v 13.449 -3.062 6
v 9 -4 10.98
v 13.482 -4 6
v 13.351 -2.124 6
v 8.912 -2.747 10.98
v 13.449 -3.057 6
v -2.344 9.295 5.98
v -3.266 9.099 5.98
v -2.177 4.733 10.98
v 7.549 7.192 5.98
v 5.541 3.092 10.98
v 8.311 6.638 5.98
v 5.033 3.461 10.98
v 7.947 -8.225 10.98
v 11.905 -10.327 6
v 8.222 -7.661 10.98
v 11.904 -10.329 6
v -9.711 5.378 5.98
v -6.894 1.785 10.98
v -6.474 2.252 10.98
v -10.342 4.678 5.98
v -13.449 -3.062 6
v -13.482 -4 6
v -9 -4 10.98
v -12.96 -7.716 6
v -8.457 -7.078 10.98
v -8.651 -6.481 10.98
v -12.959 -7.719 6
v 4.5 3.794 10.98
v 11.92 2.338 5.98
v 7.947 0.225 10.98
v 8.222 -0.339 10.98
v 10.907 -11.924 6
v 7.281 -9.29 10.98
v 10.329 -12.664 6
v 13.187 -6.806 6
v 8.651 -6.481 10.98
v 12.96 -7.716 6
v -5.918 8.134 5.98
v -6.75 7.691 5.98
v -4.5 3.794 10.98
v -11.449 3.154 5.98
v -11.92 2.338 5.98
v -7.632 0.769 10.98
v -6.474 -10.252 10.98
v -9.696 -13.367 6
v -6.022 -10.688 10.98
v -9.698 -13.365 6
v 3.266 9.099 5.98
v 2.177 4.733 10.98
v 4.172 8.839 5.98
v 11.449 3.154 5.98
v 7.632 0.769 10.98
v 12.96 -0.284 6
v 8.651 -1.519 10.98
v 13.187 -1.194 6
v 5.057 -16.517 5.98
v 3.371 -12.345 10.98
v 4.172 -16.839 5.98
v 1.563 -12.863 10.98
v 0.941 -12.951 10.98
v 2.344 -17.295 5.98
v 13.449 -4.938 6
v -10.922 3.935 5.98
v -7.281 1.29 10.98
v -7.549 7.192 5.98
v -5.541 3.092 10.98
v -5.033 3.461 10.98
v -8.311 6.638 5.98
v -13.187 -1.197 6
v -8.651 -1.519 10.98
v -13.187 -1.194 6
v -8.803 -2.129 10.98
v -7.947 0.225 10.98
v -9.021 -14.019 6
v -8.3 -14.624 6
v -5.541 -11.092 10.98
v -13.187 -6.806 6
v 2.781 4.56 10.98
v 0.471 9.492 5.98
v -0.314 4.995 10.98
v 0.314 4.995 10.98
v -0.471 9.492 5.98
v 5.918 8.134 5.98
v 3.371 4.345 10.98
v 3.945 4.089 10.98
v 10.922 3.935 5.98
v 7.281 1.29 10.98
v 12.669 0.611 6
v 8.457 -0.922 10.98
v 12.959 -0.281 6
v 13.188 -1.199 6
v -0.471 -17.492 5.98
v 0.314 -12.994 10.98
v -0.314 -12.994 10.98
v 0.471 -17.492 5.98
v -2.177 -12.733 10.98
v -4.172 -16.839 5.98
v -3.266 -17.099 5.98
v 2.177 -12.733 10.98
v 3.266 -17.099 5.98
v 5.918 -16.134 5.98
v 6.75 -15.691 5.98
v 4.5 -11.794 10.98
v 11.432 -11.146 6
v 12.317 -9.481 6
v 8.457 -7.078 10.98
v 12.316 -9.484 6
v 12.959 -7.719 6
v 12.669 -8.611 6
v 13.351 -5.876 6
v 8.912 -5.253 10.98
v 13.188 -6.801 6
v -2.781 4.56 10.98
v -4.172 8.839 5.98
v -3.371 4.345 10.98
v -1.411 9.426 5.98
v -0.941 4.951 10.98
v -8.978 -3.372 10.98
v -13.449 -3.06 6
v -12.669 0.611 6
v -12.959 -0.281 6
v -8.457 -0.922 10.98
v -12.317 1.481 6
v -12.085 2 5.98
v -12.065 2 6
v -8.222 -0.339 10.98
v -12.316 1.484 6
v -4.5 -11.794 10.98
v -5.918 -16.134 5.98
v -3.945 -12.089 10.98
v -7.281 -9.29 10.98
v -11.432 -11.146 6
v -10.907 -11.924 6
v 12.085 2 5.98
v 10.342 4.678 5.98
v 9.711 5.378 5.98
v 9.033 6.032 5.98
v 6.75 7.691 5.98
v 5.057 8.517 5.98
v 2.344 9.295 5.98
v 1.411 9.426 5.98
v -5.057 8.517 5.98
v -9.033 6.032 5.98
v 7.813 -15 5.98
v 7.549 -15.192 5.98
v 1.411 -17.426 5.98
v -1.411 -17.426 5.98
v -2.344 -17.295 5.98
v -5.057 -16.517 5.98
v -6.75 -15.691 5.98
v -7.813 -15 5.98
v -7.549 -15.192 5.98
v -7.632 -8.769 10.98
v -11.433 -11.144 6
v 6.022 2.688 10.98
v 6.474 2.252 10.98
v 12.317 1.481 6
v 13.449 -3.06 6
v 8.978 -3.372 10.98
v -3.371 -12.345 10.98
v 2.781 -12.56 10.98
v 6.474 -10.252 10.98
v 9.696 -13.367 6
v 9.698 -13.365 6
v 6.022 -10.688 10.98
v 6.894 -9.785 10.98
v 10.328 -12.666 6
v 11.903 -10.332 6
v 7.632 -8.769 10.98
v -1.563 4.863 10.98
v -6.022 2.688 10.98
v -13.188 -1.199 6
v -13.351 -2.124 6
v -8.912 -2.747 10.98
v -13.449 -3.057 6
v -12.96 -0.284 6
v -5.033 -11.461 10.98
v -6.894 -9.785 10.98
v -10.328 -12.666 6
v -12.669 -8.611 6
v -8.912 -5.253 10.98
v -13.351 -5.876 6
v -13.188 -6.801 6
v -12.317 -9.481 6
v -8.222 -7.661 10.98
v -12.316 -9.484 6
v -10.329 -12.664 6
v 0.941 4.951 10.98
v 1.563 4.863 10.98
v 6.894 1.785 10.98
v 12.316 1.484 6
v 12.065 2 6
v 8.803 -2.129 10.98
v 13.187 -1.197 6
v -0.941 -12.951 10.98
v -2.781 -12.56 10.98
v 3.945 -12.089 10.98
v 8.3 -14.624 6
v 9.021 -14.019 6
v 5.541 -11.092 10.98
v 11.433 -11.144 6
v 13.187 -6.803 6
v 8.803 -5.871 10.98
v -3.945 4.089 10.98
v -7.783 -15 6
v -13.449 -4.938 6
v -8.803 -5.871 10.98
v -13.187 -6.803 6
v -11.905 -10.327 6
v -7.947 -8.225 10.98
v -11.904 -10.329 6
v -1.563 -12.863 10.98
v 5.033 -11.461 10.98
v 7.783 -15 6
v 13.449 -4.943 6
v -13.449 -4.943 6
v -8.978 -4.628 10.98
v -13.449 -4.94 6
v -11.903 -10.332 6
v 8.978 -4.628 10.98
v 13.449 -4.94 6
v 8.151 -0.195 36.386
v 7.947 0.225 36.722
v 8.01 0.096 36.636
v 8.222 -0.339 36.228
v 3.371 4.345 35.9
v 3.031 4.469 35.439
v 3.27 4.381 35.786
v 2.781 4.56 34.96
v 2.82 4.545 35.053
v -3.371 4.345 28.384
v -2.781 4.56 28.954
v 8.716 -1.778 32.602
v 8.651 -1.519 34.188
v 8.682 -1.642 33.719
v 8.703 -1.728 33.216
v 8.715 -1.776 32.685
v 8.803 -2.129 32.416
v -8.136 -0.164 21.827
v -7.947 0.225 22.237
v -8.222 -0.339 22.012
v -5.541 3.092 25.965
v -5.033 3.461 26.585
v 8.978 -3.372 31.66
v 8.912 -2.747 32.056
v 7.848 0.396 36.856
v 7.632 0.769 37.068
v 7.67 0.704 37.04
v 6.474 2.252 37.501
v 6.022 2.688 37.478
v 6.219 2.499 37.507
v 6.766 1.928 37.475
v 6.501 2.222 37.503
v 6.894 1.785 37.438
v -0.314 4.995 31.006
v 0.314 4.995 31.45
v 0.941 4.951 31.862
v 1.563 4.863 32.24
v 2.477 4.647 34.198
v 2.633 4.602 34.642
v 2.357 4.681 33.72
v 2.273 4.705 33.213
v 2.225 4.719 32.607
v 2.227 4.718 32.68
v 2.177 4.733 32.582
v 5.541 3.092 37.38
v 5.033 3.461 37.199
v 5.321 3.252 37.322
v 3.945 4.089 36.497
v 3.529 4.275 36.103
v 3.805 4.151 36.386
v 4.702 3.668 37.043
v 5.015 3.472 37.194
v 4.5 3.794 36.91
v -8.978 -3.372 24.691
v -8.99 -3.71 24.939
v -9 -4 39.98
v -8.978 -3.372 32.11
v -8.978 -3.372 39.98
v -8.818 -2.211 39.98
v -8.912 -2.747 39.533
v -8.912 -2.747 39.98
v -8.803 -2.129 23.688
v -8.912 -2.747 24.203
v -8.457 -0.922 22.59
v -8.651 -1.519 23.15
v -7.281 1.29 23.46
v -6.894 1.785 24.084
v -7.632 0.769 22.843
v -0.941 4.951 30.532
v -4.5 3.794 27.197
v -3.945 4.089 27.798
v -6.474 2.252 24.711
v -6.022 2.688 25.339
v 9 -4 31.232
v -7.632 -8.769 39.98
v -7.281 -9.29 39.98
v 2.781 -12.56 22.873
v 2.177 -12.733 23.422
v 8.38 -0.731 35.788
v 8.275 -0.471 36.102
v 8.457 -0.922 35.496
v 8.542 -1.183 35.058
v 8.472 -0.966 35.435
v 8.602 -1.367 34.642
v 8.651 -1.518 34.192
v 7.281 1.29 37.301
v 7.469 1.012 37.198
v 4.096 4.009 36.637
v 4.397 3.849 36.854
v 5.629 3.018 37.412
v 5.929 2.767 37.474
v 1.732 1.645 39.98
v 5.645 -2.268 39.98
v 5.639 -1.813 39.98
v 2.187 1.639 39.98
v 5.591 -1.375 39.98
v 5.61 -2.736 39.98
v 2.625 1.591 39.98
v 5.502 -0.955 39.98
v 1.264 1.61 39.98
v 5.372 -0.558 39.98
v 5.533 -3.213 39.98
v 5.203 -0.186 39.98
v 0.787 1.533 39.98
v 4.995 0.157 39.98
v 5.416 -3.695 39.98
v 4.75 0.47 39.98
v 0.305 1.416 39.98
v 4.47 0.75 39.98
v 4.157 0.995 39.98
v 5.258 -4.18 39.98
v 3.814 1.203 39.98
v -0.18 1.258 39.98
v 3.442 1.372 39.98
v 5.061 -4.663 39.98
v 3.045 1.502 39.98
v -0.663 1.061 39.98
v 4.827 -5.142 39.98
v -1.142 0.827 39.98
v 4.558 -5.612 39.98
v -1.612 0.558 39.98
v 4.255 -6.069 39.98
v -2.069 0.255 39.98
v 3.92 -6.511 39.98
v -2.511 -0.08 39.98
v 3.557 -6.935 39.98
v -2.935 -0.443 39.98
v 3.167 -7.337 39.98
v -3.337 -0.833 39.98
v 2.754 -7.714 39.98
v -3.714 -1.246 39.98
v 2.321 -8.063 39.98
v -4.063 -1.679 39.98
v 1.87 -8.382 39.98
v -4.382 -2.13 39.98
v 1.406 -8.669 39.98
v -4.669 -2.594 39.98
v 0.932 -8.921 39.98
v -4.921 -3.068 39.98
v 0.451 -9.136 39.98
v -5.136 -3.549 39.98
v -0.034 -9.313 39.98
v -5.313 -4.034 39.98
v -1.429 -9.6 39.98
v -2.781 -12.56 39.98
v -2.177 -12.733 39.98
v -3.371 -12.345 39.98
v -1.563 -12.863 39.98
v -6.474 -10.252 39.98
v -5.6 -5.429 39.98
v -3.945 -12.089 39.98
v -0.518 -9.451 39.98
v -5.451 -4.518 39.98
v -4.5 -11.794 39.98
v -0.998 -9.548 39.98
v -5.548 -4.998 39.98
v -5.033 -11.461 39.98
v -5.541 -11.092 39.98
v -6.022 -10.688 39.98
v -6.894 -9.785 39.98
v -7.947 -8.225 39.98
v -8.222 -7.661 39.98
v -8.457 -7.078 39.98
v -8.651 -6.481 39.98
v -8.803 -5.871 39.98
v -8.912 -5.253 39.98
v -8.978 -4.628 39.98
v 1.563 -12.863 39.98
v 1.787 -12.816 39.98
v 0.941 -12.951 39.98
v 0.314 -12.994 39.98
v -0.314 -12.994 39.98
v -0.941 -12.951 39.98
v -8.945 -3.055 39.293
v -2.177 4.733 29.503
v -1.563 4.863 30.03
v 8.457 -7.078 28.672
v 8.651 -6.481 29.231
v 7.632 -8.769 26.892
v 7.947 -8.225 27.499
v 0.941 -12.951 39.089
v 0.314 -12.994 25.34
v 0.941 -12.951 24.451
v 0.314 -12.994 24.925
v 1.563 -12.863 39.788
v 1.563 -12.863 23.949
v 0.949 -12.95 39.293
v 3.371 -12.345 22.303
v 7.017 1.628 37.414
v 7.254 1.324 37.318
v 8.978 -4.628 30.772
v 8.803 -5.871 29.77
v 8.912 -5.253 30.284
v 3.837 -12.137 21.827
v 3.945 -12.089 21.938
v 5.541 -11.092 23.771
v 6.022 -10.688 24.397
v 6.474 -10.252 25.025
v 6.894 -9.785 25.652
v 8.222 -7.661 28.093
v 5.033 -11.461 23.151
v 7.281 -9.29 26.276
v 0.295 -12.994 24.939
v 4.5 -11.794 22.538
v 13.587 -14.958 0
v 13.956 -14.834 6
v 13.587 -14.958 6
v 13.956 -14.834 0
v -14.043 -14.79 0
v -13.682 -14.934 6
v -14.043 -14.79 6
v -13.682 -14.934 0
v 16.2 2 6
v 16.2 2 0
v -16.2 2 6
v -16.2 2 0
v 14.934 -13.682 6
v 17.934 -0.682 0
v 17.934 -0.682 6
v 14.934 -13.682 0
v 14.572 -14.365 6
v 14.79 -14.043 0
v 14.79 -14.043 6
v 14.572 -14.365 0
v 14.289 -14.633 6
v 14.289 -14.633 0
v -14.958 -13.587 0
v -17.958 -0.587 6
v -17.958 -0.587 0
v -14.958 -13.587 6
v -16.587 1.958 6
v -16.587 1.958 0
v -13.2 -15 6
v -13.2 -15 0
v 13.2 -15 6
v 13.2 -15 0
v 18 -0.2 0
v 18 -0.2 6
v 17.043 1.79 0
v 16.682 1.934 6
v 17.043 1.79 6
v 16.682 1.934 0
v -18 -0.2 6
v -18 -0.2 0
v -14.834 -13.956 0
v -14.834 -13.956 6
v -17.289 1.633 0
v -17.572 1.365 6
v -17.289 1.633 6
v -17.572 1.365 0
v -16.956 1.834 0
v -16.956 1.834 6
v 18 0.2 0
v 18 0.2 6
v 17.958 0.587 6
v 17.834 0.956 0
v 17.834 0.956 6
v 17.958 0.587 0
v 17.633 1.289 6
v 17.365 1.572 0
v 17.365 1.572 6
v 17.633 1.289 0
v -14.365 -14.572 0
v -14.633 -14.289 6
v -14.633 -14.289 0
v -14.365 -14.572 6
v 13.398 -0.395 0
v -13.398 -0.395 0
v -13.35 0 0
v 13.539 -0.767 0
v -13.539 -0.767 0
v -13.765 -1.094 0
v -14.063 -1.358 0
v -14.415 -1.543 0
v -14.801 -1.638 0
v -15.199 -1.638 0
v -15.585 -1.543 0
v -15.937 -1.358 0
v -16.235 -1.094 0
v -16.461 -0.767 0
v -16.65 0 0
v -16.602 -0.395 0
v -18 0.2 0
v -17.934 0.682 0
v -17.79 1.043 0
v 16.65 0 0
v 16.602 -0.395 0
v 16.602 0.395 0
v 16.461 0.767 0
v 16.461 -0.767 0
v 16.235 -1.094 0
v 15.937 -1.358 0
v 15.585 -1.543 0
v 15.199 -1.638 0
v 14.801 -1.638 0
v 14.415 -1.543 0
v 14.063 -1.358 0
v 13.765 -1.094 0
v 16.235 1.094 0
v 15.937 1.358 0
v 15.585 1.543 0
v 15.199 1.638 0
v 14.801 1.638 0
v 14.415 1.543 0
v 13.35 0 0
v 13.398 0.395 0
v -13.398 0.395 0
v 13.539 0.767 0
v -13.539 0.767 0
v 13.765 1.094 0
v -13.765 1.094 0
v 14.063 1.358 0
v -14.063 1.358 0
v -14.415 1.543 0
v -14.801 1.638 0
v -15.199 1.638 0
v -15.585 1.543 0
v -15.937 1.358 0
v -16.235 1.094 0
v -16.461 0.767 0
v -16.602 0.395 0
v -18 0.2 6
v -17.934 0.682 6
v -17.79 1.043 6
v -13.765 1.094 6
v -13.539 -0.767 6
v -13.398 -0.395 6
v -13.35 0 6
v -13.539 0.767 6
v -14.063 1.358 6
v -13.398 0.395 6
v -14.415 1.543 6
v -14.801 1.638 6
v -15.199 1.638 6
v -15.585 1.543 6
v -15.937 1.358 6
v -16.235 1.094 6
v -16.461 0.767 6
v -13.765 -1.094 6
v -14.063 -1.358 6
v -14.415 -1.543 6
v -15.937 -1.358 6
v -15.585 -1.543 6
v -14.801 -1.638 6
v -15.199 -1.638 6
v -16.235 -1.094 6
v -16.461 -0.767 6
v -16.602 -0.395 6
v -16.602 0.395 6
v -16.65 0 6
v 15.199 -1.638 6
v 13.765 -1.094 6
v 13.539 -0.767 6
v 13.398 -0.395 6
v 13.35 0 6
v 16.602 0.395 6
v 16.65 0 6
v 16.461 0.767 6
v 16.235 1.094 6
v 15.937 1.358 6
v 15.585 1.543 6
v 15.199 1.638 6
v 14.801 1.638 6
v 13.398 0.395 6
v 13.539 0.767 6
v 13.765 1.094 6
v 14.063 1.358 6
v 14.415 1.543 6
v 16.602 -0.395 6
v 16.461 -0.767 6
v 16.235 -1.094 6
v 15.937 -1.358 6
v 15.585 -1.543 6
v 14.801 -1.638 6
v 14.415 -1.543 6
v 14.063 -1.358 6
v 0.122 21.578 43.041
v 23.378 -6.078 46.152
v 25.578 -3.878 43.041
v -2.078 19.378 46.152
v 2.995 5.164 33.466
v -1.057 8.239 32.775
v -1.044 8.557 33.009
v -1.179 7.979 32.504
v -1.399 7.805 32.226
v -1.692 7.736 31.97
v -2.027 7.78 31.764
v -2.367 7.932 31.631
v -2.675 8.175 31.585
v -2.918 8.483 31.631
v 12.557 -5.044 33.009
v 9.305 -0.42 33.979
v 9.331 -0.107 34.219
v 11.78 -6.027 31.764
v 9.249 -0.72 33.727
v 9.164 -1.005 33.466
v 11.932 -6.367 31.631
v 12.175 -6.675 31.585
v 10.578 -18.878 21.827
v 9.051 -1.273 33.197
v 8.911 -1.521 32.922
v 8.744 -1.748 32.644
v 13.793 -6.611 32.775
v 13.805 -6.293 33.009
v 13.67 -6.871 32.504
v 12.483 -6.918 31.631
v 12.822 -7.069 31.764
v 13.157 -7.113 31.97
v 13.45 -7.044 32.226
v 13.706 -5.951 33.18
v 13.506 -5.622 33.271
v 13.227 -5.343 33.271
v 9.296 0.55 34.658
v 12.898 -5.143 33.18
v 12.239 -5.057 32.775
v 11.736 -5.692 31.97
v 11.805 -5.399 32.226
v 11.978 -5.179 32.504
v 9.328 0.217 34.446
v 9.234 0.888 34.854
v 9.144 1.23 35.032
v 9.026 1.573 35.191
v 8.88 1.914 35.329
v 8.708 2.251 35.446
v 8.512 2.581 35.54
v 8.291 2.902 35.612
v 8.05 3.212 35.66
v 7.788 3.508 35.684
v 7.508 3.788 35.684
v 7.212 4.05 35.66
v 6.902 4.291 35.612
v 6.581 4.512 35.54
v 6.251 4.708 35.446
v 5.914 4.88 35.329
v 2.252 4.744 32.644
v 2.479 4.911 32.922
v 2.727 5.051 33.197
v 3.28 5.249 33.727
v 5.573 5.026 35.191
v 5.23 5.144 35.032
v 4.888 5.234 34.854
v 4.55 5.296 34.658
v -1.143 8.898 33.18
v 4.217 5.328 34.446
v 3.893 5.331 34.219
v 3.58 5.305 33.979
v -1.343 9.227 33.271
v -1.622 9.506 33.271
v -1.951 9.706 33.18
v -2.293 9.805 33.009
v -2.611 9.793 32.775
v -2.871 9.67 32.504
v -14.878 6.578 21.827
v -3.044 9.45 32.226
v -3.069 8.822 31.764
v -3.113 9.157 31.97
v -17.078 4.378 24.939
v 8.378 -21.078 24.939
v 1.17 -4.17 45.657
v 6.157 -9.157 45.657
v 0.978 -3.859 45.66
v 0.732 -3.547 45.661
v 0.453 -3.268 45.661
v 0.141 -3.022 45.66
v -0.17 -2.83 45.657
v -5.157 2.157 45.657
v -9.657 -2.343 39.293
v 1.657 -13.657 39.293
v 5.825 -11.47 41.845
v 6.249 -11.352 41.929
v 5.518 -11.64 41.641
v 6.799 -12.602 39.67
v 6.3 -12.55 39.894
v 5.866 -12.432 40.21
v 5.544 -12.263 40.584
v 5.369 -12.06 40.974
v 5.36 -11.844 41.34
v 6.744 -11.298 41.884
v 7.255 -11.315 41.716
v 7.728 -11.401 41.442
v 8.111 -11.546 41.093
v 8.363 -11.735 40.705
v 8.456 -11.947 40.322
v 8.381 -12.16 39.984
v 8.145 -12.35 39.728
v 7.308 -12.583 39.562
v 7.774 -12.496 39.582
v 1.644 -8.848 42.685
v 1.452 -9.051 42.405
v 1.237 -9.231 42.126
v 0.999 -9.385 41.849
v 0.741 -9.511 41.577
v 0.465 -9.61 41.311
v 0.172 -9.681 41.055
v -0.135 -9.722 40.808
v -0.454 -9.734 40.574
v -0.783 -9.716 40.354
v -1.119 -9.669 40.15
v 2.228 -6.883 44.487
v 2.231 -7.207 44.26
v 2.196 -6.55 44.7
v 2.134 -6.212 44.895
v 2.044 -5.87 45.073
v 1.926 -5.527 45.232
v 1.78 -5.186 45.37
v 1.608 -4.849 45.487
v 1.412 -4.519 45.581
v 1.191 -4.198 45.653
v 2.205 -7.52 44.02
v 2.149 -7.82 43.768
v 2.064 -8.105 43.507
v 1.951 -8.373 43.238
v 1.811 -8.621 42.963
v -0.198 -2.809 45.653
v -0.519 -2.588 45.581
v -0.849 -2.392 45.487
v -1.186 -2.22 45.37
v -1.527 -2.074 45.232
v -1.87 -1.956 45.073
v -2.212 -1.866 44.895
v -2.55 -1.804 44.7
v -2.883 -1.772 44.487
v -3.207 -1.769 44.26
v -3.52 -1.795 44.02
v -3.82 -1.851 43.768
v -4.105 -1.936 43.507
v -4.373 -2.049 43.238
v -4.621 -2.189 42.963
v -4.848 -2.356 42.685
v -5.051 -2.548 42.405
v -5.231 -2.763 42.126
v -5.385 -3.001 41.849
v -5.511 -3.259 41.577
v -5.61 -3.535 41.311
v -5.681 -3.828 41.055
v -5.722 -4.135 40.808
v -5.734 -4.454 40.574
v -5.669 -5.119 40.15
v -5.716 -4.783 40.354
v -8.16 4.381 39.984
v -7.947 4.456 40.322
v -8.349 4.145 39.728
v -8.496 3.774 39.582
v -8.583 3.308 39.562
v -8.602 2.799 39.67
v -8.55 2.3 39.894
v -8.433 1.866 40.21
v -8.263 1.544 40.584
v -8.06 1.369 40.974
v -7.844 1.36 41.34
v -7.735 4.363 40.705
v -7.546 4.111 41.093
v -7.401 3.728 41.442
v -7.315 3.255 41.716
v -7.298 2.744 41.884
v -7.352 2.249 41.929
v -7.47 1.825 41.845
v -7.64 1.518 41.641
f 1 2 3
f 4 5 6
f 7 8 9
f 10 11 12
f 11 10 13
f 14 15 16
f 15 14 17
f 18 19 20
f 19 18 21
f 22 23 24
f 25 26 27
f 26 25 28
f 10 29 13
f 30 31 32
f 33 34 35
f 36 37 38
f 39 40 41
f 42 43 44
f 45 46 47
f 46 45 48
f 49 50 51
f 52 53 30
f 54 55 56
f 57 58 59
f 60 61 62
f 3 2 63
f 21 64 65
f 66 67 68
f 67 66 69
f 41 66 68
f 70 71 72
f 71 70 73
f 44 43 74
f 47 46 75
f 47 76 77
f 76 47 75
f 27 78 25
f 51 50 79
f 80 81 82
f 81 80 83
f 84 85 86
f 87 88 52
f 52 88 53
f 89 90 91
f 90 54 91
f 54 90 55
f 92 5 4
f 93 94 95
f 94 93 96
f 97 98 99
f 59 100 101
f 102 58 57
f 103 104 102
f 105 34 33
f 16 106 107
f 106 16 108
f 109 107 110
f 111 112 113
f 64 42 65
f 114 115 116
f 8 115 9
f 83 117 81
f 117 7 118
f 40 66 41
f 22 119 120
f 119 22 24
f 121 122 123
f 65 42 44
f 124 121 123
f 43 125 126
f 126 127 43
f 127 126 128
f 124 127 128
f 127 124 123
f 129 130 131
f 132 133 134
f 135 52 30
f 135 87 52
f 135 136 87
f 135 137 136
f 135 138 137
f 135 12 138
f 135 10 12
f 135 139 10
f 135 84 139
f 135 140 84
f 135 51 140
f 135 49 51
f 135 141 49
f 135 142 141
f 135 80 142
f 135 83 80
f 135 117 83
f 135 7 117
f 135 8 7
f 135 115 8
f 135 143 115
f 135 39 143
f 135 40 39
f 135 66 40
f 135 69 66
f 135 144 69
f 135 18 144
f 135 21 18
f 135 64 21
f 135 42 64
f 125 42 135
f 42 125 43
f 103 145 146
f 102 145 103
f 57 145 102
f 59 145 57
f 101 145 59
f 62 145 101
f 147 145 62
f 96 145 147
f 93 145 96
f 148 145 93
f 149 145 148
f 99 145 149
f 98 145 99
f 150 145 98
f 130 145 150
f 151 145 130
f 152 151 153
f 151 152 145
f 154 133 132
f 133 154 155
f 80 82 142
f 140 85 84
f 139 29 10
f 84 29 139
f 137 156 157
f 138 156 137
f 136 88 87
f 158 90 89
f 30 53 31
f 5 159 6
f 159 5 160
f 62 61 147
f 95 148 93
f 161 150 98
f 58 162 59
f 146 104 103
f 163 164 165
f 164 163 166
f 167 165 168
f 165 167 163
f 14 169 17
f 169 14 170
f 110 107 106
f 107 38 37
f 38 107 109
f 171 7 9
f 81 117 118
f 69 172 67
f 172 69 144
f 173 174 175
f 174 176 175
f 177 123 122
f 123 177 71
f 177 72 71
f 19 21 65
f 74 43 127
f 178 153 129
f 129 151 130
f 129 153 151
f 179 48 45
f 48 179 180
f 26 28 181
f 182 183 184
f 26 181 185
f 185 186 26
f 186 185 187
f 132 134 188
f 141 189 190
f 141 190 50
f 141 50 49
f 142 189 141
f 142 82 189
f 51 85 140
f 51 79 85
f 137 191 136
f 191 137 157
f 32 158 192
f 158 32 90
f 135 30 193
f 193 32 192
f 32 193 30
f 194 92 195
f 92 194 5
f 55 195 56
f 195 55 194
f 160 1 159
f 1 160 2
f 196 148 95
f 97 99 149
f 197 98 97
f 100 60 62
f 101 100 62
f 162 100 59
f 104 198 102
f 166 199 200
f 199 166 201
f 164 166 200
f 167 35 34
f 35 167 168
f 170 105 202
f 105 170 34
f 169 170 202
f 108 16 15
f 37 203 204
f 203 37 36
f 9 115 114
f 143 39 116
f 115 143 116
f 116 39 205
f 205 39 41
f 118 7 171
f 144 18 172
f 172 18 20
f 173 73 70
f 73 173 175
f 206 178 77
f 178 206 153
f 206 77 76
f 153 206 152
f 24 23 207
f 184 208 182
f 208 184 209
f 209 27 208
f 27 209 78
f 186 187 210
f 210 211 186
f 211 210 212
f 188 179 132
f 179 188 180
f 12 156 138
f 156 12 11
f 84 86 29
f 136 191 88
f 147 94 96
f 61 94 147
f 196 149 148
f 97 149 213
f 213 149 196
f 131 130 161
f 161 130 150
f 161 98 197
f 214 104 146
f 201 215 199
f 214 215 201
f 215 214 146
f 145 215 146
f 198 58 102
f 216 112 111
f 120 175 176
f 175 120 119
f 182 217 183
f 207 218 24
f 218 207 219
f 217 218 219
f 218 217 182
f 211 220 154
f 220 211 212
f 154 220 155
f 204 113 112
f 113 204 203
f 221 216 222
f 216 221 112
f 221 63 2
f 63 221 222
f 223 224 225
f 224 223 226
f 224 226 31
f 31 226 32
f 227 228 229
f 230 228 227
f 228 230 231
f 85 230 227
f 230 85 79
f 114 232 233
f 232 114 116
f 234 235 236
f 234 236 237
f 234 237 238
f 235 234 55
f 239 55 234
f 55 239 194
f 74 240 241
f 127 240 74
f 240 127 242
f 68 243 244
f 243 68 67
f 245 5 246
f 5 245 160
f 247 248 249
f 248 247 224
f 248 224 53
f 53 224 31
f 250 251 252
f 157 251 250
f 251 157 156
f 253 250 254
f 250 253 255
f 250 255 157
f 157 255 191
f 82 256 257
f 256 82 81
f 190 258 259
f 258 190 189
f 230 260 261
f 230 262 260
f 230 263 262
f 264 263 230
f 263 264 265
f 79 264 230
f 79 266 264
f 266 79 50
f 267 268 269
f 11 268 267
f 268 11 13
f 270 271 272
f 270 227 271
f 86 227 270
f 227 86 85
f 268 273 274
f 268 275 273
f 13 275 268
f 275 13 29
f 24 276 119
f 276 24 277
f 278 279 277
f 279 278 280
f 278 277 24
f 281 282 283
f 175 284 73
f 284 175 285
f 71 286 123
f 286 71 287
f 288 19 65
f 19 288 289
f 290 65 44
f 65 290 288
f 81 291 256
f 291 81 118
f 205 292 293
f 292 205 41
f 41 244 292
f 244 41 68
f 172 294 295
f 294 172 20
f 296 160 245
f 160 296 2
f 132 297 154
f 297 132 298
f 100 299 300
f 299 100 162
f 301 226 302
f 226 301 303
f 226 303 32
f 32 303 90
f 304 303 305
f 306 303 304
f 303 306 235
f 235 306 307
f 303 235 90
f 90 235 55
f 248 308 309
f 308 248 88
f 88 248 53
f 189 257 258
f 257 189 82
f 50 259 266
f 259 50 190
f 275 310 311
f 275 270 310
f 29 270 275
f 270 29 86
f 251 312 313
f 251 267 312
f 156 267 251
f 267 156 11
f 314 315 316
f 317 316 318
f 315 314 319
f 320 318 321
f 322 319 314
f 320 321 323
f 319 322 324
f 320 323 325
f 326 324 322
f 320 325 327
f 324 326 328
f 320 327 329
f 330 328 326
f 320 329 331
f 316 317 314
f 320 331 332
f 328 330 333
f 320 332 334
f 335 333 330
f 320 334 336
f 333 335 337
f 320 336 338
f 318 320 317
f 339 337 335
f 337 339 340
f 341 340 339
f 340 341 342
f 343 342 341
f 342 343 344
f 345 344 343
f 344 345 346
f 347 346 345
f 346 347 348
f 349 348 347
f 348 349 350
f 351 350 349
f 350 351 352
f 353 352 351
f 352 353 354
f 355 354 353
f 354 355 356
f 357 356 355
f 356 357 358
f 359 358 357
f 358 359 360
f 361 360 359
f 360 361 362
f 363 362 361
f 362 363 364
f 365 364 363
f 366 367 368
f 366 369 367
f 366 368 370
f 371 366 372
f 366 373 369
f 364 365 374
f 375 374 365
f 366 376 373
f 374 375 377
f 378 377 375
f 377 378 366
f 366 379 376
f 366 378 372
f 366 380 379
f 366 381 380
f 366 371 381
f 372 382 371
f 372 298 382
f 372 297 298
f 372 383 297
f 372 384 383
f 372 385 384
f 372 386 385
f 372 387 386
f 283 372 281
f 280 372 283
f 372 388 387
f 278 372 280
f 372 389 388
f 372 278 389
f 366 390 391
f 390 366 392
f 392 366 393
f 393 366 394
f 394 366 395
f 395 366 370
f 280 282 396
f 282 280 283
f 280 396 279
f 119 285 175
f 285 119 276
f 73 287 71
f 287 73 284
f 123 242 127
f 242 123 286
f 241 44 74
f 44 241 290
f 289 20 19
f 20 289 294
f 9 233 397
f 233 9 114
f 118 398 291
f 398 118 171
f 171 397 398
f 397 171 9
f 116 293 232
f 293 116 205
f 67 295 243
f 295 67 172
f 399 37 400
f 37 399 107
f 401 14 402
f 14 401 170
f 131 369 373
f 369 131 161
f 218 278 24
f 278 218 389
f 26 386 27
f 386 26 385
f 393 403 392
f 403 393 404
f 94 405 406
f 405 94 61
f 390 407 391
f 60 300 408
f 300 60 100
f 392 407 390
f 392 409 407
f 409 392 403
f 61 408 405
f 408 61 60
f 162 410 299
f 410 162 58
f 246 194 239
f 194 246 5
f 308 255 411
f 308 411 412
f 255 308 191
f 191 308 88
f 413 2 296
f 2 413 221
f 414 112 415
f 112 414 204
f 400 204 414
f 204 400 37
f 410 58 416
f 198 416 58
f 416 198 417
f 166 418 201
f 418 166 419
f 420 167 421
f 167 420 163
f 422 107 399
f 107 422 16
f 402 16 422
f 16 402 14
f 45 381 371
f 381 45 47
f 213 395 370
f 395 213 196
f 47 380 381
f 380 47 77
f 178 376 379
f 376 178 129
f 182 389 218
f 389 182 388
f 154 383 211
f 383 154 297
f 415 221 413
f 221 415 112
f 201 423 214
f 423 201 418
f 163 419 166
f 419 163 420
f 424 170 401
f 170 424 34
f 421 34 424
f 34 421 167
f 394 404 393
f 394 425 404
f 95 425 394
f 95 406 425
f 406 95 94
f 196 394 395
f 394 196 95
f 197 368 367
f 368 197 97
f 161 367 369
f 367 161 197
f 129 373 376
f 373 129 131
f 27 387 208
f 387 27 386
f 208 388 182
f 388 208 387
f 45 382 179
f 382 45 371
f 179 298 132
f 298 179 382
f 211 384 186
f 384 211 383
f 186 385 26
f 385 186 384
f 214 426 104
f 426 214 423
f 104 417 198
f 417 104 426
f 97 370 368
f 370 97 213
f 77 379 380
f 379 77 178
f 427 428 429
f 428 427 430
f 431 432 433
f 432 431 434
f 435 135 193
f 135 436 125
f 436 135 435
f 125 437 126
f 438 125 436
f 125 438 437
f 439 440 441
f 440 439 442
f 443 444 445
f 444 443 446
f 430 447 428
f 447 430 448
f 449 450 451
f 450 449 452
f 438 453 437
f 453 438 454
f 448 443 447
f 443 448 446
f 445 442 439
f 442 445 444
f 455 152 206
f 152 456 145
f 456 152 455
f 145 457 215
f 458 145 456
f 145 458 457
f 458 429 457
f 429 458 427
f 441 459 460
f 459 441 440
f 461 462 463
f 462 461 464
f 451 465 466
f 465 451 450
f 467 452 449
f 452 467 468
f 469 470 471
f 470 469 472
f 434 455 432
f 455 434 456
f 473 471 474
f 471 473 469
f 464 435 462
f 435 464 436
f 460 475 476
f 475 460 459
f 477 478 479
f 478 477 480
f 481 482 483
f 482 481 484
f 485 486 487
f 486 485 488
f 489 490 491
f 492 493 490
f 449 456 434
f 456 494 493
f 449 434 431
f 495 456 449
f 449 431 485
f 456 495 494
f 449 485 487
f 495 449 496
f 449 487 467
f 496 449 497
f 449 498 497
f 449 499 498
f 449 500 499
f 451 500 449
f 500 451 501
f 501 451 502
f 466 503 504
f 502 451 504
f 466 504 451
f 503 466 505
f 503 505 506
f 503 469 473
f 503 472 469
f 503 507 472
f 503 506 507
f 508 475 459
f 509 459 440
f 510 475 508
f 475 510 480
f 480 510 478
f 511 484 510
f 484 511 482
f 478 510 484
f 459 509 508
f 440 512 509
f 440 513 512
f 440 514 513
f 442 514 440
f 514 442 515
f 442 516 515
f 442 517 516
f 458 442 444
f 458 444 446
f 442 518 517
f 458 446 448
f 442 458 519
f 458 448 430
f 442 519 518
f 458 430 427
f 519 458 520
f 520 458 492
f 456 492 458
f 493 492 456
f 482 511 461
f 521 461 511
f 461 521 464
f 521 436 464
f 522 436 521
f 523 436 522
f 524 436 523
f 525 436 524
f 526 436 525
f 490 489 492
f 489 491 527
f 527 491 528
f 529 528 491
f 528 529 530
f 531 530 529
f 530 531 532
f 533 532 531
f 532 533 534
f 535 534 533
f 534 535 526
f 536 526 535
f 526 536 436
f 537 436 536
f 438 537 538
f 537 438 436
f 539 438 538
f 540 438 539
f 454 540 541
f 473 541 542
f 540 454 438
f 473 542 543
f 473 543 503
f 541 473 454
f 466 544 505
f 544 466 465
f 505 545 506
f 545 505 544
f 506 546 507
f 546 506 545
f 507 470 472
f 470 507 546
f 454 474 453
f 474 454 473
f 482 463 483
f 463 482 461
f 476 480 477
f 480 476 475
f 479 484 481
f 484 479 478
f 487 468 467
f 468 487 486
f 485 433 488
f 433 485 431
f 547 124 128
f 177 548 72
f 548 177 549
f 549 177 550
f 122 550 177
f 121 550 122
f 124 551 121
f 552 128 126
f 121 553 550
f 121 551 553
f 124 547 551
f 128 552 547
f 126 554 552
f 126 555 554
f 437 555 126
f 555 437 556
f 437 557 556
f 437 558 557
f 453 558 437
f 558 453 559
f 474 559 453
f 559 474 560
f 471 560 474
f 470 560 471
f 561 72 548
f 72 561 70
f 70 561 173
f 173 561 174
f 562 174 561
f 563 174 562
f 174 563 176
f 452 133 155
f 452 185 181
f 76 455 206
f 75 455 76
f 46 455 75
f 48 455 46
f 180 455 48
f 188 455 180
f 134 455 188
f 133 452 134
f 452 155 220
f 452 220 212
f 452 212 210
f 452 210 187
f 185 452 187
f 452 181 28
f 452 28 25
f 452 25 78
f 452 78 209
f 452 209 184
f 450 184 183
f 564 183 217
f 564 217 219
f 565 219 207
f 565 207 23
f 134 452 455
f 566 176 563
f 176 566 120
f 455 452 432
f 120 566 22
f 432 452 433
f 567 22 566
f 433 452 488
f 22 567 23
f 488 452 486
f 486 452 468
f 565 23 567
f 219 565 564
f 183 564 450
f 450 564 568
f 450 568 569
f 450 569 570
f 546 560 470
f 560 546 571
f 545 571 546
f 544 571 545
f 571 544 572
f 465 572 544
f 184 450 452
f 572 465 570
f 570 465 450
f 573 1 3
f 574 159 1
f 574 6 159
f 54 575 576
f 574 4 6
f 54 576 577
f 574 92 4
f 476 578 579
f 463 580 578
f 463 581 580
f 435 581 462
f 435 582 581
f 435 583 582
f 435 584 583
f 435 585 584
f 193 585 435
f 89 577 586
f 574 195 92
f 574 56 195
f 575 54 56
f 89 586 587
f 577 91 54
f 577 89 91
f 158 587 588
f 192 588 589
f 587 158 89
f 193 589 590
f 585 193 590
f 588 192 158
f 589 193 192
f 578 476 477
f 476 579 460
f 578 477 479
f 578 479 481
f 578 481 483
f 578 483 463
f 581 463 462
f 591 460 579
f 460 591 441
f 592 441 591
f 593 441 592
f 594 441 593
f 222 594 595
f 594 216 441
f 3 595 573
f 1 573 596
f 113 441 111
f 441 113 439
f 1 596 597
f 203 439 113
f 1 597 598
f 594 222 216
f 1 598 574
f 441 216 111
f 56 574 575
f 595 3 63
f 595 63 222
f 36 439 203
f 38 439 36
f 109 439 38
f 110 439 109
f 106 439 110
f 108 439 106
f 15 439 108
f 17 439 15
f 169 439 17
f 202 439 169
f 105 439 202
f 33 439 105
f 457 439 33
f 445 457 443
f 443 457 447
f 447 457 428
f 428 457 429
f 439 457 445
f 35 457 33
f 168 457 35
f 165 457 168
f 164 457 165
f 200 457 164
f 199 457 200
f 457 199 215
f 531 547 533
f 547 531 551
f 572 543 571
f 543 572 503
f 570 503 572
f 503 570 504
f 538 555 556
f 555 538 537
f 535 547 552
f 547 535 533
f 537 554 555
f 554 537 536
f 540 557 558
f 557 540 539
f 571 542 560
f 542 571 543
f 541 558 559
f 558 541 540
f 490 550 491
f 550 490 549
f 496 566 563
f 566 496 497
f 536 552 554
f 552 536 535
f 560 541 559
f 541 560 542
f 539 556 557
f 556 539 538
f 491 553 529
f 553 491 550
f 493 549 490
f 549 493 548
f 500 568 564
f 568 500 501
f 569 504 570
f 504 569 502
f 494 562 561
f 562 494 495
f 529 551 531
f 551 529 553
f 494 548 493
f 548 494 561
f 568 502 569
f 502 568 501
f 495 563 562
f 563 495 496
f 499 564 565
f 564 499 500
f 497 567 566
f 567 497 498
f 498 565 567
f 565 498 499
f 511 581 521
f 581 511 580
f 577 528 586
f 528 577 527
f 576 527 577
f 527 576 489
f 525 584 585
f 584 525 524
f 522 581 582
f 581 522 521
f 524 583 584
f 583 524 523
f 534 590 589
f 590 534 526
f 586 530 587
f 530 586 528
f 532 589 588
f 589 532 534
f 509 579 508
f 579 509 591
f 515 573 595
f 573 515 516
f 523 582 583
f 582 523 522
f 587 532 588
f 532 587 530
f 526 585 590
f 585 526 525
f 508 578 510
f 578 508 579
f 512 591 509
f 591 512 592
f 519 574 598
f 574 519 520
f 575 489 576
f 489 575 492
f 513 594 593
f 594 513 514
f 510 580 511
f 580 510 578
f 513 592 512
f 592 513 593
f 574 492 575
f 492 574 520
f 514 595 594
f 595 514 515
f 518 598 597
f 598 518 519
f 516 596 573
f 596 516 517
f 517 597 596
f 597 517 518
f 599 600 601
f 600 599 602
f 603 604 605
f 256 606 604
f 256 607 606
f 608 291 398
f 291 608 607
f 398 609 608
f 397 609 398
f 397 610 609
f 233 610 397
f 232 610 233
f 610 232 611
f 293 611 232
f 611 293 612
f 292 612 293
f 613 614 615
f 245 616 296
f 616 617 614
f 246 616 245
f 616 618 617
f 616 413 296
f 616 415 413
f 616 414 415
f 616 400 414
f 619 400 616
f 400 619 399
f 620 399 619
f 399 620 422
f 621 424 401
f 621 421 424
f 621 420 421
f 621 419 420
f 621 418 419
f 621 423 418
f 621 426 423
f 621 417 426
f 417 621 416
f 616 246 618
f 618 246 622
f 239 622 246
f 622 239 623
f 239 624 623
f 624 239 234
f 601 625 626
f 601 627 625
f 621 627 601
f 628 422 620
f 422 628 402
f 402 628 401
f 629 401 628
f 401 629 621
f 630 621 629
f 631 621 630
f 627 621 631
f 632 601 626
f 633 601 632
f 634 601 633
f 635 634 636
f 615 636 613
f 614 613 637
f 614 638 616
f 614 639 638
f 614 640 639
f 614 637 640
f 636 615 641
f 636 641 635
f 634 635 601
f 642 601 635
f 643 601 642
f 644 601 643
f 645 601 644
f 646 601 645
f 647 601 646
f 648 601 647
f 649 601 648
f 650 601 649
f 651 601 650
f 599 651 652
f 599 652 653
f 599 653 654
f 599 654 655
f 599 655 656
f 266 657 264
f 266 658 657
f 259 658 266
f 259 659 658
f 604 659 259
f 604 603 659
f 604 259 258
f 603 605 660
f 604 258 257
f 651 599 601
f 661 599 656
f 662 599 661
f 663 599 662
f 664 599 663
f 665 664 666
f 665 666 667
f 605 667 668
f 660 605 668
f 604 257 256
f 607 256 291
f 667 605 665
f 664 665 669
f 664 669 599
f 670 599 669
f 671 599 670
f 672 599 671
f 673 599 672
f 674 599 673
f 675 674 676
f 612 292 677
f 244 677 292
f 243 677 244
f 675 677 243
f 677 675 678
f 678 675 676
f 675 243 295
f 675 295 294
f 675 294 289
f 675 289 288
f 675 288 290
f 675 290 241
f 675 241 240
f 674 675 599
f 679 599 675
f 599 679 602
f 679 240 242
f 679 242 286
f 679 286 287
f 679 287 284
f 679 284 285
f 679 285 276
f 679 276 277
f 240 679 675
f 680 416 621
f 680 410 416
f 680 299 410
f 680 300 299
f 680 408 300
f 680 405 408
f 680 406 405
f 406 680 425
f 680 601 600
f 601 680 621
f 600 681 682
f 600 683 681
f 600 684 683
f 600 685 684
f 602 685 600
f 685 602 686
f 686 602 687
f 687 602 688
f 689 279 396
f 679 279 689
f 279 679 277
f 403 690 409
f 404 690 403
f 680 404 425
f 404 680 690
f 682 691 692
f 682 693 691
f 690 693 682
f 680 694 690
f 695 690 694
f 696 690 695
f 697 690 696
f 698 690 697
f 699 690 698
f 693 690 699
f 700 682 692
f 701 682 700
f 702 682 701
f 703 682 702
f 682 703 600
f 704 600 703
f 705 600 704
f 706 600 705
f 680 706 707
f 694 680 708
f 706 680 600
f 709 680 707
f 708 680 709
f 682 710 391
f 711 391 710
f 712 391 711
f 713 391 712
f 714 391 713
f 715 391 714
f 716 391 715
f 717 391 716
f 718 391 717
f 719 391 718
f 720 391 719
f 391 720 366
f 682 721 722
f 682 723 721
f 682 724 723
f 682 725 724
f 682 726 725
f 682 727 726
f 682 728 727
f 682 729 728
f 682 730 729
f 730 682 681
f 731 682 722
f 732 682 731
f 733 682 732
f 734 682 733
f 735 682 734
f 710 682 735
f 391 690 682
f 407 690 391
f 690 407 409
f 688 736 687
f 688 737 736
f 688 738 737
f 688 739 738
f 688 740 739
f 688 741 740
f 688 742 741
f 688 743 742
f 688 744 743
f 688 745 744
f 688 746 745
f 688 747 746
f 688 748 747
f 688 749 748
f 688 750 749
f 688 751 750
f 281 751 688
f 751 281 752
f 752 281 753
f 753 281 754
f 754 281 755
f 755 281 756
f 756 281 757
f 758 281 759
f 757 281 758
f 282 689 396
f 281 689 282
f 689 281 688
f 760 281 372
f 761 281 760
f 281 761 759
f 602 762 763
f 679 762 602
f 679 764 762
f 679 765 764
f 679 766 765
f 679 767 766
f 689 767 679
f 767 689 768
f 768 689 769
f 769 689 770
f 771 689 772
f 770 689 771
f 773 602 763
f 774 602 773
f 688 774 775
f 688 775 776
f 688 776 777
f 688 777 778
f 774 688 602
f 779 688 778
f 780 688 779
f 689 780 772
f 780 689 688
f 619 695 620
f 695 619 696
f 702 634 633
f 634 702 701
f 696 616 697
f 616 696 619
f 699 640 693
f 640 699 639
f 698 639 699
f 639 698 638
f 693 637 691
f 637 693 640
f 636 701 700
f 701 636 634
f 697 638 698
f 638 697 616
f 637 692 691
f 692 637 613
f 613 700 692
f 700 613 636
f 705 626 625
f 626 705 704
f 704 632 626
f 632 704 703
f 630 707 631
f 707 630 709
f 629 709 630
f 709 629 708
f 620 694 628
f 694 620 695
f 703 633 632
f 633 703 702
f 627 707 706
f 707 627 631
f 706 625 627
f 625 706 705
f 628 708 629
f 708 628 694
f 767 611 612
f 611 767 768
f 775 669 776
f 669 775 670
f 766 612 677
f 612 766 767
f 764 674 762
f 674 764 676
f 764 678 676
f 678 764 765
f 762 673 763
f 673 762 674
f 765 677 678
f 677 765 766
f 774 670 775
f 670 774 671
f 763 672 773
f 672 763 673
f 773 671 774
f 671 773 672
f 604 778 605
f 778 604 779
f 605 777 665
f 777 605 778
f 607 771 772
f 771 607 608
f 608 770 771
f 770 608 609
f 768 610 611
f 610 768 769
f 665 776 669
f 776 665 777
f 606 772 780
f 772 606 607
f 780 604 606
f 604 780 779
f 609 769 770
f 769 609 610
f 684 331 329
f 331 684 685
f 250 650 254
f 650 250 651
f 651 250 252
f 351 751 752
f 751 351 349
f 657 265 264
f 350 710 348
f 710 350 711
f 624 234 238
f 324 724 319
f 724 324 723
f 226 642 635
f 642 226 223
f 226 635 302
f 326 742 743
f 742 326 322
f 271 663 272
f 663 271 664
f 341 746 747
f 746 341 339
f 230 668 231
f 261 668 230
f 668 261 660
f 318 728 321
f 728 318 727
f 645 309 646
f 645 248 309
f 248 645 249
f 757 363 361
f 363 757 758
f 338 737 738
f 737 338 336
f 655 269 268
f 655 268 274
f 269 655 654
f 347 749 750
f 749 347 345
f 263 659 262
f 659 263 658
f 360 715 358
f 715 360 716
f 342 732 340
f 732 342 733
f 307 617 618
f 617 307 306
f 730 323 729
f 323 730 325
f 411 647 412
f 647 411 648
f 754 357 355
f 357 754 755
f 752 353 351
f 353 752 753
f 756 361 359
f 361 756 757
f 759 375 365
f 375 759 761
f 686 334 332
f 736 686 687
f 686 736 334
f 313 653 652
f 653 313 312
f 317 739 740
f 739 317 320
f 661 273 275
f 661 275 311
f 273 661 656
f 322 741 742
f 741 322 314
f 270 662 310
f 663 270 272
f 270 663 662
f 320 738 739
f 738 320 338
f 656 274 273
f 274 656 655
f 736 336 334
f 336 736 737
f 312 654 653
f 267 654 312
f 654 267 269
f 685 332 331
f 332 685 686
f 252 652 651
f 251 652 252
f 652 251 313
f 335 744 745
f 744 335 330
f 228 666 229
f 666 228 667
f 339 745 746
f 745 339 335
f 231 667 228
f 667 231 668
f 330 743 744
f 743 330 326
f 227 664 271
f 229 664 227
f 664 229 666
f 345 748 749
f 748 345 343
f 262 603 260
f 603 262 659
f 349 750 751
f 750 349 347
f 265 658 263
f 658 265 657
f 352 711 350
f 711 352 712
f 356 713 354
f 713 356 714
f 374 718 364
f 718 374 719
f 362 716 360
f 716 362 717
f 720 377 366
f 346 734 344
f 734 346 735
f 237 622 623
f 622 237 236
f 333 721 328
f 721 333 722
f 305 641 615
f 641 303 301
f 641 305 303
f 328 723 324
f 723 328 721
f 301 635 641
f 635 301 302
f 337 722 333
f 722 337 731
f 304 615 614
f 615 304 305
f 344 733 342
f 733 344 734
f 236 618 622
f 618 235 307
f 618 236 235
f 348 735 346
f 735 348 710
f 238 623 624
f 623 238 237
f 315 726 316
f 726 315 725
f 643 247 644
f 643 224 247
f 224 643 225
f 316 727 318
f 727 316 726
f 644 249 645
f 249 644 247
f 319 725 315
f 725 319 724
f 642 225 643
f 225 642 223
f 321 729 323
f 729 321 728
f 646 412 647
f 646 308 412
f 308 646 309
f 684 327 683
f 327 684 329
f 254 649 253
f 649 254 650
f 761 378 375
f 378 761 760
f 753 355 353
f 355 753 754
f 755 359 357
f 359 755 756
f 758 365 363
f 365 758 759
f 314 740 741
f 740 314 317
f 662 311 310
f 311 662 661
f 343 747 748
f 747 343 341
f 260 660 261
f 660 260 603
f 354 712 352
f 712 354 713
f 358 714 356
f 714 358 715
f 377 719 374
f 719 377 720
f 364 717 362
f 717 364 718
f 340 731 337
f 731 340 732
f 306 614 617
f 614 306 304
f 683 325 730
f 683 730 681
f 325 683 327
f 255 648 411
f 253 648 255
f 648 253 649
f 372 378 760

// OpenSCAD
// =====================================================================
//  AquaFeeder -- suporte da camera (modulo OV2640)
//  Parafusa em cima da caixa da eletronica (2x M3 x 12, 30mm entre furos).
//
//  DUAS inclinacoes importam:
//    cam_tilt = quanto aponta para baixo
//    cam_yaw  = quanto gira na horizontal PARA DESVIAR DO FUNIL.
//  Com yaw = 0 a camera olha direto para a parede do funil e nao ve nada.
//  Com yaw = 45 ela olha na diagonal, passa ao lado do funil e enquadra a
//  superficie da agua + a saida da calha.
//
//  Imprimir COMO ESTA (pe na mesa). Sem suporte.
// =====================================================================
include <common.scad>

pod_w     = 36;    // largura da placa da camera (= largura do pe)
foot_x    = 36;    // pe: X = direcao dos 2 parafusos
foot_y    = 22;
foot_t    = 6;
post_d    = 18;
post_dy   = -4;    // poste recuado, para nao bater no mastro
post_top  = 40;
plate_t   = 3.4;
plate_l   = 30;
plate_off = 9;     // placa adiantada em relacao ao eixo do poste

cam_tilt  = 45;    // graus para baixo
cam_yaw   = 45;    // graus na horizontal (desvia do funil)

module pod_base() {
    difference() {
        union() {
            // pe
            hull() {
                rbox(foot_x, 4, foot_t, 1.8);
                translate([0, post_dy - foot_y/2 + 2, 0]) rbox(foot_x - 6, 4, foot_t, 1.8);
            }
            // poste + concordancia
            translate([0, post_dy, foot_t - eps]) {
                cylinder(d1 = post_d + 9, d2 = post_d, h = 5);
                cylinder(d = post_d, h = post_top - foot_t);
            }
        }
        // parafusos para as bossas da caixa
        for (s = [-1, 1])
            translate([s * 15, 0, -1]) cylinder(d = m3_free + fit, h = foot_t + 2);
    }
}

// cabeca: origem no topo do poste, +x = direcao do olhar antes das rotacoes
module cam_head() {
    rotate([0, 0, cam_yaw]) rotate([0, cam_tilt, 0]) {
        difference() {
            union() {
                translate([plate_off, 0, 0])
                    cube([plate_t, pod_w, plate_l], center = true);
                // reforco: liga a COSTAS da placa ao poste (nunca invade a
                // frente, senao a PCB da camera nao assenta)
                hull() {
                    translate([plate_off - plate_t/2 - 0.5, 0, 0])
                        cube([1, pod_w, plate_l], center = true);
                    translate([-3, 0, 0]) cube([1, 16, 9], center = true);
                }
            }
            // janela da lente
            translate([plate_off, 0, 0]) rotate([0, 90, 0])
                cylinder(d = cam_lens_d, h = 40, center = true);
            // furos M2 da PCB
            for (s = [-1, 1])
                translate([plate_off, s * cam_hole_p/2, 0]) rotate([0, 90, 0])
                    cylinder(d = 2.4, h = 40, center = true);
        }
    }
}

module cam_pod() {
    union() {
        pod_base();
        translate([0, post_dy, post_top]) cam_head();
    }
}

cam_pod();
